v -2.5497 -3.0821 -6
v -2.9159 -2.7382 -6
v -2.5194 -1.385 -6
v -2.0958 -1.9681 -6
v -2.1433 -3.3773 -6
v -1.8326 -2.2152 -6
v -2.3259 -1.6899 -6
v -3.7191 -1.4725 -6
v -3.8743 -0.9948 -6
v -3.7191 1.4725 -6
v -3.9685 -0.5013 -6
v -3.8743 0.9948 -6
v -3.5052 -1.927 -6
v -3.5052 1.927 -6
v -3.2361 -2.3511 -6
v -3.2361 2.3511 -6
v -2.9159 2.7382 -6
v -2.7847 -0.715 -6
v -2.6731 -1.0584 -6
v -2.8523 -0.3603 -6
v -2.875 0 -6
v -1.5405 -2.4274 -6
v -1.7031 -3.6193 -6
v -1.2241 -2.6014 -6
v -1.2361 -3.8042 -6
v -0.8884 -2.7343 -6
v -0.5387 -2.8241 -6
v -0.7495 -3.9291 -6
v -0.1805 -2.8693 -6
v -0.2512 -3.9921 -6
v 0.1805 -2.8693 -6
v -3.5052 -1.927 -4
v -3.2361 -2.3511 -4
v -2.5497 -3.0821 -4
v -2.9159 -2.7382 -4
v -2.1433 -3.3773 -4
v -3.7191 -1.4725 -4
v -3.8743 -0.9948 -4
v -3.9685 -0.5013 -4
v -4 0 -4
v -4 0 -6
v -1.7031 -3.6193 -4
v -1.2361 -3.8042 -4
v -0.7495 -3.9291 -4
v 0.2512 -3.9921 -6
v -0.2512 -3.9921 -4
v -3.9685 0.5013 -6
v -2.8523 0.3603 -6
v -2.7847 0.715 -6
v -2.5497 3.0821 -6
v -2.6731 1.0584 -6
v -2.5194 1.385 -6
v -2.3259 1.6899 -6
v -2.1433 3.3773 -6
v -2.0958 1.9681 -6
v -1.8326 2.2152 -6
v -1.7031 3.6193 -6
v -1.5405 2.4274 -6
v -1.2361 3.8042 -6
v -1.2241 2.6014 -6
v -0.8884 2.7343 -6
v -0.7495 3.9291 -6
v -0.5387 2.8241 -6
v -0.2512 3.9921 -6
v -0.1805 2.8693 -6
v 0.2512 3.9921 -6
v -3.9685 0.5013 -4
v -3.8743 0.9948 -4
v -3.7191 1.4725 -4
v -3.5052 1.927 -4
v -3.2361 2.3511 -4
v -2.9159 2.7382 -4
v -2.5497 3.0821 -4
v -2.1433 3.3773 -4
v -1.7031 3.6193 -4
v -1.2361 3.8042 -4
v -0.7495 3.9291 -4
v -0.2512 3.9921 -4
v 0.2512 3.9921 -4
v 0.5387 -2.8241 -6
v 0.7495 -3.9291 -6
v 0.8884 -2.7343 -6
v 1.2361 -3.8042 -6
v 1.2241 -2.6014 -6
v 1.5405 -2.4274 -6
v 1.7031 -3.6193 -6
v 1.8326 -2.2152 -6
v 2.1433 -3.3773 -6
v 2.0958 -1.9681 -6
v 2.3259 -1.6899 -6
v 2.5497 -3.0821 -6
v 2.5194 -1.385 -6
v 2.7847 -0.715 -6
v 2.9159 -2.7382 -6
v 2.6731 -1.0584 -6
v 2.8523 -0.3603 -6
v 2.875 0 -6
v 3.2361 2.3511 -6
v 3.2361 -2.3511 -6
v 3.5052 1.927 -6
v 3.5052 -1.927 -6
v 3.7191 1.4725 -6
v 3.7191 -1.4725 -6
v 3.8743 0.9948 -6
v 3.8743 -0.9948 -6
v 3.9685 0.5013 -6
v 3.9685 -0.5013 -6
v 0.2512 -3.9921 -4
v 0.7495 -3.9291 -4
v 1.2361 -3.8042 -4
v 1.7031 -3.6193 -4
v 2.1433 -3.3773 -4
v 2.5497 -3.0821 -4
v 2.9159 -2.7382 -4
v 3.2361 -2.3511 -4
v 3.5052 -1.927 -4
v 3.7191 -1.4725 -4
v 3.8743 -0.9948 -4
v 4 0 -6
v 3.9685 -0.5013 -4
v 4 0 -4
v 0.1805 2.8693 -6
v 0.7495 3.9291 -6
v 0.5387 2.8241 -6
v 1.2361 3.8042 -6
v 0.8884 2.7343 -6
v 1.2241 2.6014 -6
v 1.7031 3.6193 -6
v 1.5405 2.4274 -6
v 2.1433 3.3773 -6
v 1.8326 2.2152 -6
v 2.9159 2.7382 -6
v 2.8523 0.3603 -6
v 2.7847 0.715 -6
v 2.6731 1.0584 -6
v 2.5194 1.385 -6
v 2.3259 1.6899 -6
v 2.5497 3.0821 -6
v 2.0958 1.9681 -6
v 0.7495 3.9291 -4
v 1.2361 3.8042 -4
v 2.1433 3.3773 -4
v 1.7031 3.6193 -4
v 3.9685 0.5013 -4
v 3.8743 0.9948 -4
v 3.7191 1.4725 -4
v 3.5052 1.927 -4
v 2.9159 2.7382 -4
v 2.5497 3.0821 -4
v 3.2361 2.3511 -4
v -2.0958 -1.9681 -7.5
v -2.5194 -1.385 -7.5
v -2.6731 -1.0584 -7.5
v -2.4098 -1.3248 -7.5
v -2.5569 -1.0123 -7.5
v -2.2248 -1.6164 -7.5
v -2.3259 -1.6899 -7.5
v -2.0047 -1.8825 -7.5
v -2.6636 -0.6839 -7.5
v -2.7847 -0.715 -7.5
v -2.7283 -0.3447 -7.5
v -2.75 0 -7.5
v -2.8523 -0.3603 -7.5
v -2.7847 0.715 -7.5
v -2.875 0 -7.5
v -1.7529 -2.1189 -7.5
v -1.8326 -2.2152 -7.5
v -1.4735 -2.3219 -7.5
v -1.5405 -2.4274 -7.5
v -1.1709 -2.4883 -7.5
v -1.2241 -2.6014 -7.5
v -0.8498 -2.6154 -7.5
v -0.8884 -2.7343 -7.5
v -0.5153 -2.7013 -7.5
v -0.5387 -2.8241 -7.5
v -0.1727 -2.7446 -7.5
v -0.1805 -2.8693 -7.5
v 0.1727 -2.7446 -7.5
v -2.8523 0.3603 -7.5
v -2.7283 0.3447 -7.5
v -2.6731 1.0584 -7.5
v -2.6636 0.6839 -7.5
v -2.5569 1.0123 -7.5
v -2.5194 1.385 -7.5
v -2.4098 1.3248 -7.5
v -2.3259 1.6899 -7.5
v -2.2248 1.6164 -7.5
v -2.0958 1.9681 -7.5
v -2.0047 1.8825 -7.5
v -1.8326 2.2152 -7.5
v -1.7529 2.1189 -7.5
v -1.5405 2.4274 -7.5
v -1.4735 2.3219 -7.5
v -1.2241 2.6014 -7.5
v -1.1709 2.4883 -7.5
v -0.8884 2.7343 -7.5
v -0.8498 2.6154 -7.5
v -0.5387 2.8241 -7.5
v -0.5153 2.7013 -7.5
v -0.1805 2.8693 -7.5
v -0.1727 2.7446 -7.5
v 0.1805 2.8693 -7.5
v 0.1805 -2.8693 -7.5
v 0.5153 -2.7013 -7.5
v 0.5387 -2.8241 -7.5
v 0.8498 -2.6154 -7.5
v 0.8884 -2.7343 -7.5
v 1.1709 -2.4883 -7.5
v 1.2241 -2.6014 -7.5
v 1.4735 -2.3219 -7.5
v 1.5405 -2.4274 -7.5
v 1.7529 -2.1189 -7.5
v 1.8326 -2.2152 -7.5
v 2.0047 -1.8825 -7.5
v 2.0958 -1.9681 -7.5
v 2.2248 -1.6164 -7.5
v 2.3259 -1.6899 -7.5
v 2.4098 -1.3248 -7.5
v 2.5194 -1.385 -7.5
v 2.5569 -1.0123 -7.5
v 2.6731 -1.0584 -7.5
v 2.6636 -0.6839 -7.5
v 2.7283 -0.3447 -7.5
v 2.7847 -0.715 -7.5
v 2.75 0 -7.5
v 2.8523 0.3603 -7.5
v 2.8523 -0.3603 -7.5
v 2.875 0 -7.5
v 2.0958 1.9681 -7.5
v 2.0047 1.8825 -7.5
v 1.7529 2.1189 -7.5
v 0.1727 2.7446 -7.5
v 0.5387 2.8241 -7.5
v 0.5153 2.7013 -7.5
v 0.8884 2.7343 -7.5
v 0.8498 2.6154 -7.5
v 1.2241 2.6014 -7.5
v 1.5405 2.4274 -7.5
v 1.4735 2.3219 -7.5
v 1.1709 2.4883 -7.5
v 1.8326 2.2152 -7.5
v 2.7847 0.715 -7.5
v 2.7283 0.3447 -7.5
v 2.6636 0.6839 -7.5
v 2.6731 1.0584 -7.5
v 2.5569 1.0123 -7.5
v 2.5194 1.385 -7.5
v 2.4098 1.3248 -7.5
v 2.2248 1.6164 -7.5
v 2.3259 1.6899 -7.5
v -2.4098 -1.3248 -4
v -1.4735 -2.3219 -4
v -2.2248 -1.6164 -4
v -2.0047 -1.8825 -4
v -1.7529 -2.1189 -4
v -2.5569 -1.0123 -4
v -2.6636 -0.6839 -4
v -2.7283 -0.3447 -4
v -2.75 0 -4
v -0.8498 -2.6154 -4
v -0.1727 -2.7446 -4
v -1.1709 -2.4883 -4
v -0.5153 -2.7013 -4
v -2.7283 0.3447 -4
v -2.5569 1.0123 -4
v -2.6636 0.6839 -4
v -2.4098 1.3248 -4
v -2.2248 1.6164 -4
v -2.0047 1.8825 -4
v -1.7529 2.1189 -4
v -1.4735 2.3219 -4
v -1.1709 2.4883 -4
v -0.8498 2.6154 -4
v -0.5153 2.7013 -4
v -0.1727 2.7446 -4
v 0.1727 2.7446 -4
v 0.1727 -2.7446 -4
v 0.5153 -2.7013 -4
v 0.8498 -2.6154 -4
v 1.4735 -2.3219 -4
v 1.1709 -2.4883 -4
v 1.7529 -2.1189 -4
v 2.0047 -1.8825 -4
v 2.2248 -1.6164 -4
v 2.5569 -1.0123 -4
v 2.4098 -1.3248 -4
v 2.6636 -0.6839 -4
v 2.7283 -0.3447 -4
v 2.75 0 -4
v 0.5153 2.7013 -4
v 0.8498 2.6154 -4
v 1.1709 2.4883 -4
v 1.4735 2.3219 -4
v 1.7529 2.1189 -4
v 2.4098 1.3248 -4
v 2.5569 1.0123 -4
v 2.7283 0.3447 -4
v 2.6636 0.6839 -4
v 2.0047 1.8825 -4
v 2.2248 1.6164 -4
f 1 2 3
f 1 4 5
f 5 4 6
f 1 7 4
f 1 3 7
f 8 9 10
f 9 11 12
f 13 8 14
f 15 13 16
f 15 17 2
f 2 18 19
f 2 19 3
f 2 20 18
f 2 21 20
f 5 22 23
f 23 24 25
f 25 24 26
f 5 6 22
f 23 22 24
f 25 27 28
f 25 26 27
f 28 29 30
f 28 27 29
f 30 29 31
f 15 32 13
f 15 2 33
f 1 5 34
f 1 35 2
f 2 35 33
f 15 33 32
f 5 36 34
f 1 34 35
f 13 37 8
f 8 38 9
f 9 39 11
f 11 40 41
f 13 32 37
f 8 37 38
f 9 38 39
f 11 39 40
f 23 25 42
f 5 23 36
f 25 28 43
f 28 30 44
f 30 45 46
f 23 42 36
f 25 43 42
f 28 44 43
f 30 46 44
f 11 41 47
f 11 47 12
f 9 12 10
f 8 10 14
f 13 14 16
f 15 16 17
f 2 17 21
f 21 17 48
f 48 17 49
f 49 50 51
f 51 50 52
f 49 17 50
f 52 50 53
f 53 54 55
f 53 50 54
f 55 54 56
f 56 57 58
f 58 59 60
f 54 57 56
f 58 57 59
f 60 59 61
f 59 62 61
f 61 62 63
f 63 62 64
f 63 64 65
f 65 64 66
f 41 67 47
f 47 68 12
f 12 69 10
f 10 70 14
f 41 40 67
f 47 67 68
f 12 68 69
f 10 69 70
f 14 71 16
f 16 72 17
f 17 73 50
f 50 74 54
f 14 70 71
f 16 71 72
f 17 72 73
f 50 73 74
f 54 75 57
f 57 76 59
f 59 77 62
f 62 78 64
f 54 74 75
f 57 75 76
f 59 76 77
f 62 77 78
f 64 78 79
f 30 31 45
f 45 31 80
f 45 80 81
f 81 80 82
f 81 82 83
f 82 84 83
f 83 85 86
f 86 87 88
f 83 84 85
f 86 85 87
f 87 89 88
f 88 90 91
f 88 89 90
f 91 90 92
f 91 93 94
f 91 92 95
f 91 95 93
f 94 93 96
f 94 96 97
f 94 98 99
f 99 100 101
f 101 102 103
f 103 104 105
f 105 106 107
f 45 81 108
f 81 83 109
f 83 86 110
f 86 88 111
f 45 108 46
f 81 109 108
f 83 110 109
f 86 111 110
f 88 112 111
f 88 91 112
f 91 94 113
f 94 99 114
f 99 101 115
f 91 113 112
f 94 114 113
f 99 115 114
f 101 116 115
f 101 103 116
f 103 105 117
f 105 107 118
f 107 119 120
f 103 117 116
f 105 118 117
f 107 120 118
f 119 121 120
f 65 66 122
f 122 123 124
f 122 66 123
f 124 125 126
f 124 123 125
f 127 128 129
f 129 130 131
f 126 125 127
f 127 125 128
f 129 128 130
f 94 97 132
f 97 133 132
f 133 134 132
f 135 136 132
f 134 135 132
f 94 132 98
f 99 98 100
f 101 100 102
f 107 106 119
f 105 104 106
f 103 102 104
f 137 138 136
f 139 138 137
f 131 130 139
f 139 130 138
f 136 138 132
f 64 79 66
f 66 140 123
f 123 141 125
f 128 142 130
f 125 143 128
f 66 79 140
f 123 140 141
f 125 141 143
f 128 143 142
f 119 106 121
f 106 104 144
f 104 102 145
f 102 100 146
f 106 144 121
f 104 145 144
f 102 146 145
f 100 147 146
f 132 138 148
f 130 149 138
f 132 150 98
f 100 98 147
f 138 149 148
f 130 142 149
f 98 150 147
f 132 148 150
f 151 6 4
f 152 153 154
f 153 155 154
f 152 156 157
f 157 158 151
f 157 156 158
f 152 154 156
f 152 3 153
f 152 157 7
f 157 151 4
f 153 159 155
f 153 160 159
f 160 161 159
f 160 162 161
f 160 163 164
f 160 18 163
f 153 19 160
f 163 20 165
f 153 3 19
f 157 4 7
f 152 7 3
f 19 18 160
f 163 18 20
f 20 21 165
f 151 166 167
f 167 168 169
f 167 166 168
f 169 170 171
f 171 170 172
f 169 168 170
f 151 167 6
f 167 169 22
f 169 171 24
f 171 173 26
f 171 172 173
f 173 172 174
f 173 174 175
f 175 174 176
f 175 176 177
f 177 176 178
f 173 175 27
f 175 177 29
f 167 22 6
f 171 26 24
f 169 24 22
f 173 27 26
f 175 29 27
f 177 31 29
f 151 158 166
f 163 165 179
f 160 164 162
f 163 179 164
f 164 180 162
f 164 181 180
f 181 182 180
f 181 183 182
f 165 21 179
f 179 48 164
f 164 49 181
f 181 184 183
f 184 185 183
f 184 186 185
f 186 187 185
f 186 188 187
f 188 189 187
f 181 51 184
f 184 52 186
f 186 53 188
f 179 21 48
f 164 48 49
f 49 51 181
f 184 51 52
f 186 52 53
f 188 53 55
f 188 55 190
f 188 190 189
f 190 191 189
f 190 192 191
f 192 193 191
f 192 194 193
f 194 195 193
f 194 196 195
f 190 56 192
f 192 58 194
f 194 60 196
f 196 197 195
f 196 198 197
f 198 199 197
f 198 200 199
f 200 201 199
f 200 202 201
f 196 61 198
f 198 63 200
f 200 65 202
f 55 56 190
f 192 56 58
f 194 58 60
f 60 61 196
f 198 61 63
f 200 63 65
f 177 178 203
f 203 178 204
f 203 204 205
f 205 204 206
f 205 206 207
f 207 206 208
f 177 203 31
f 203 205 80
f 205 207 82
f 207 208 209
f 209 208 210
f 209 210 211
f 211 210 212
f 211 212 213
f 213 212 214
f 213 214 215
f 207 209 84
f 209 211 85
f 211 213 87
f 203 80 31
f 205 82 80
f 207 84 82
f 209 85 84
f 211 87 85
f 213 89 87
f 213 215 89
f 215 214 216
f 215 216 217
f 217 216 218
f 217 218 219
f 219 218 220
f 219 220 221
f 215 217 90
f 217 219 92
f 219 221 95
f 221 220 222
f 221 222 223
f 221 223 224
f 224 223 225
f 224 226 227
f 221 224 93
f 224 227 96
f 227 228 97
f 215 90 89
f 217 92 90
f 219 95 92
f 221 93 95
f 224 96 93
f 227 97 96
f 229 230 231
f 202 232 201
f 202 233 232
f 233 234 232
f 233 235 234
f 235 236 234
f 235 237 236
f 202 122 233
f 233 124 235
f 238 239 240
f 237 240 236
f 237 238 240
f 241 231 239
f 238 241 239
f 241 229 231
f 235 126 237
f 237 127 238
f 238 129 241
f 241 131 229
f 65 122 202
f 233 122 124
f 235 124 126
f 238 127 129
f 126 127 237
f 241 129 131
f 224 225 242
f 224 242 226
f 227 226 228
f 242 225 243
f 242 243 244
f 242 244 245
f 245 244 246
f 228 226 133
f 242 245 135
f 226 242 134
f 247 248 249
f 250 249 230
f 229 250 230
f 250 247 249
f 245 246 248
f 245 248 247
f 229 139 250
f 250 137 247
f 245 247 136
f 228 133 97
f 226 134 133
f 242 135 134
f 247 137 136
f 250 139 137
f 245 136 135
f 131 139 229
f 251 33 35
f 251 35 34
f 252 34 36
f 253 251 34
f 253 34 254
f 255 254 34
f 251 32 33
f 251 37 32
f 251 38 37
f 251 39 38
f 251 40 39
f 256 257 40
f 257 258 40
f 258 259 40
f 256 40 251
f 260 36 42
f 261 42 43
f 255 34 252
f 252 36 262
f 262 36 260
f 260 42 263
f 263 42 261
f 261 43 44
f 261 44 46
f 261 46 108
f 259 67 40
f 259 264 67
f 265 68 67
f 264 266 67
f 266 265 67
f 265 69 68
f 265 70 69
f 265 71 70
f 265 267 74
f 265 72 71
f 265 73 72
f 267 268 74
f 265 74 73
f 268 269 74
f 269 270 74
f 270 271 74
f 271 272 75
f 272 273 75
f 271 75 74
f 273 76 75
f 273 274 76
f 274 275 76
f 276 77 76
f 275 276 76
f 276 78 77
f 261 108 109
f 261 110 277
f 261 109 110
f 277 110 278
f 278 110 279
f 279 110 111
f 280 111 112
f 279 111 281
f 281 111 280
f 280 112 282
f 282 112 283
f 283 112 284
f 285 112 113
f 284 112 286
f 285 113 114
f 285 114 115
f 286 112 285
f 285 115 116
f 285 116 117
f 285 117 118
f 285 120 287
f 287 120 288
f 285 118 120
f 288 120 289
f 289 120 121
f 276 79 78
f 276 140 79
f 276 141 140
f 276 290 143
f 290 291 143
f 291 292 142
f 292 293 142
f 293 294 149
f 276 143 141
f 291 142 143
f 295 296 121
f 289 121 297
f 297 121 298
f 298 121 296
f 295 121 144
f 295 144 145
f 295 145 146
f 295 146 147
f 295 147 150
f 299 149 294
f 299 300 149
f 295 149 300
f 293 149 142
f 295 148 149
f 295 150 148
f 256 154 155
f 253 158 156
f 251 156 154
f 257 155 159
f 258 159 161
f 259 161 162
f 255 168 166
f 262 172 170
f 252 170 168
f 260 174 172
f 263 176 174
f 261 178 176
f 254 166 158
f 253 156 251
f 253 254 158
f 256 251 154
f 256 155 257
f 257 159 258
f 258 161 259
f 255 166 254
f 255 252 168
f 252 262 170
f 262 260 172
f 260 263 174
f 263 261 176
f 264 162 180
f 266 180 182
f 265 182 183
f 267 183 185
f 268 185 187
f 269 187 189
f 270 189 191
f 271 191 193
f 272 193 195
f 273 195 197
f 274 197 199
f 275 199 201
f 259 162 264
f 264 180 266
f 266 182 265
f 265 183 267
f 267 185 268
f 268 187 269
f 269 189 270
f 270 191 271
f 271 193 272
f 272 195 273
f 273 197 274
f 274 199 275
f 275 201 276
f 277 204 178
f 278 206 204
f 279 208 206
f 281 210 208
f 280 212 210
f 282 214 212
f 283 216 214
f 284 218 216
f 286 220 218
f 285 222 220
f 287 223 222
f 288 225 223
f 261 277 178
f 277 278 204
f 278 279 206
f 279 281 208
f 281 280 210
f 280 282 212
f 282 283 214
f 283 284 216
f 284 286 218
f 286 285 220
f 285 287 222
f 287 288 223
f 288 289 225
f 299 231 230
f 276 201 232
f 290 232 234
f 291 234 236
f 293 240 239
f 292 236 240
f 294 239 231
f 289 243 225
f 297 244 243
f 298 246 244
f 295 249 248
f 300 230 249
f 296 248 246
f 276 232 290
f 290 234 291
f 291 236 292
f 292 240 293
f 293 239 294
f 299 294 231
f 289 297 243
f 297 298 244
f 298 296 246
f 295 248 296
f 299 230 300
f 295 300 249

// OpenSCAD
$fn = 50;

difference() {
	union() {
		translate(v = [0, 0, -6.0]) {
			cylinder(h = 6.0, r = 4.0);
		}
		#translate(v = [0, 0, -7.5]) {
			cylinder(h = 7.5, r = 2.875);
		}
	}
	union() {
		translate(v = [0, 0, 0]) {
			rotate(a = [0, 0, 0]) {
				difference() {
					union() {
						translate(v = [0, 0, -4]) {
							linear_extrude(height = 4) {
								polygon(points = [[4.8468, 0.0], [2.4234000000000004, 4.197451927062417], [-2.423399999999999, 4.197451927062417], [-4.8468, 5.935618106107392e-16], [-2.423400000000002, -4.197451927062416], [2.423399999999997, -4.197451927062419]]);
							}
						}
					}
					union();
				}
			}
		}
		#translate(v = [0, 0, -100.0]) {
			cylinder(h = 200, r = 2.75);
		}
	}
}
